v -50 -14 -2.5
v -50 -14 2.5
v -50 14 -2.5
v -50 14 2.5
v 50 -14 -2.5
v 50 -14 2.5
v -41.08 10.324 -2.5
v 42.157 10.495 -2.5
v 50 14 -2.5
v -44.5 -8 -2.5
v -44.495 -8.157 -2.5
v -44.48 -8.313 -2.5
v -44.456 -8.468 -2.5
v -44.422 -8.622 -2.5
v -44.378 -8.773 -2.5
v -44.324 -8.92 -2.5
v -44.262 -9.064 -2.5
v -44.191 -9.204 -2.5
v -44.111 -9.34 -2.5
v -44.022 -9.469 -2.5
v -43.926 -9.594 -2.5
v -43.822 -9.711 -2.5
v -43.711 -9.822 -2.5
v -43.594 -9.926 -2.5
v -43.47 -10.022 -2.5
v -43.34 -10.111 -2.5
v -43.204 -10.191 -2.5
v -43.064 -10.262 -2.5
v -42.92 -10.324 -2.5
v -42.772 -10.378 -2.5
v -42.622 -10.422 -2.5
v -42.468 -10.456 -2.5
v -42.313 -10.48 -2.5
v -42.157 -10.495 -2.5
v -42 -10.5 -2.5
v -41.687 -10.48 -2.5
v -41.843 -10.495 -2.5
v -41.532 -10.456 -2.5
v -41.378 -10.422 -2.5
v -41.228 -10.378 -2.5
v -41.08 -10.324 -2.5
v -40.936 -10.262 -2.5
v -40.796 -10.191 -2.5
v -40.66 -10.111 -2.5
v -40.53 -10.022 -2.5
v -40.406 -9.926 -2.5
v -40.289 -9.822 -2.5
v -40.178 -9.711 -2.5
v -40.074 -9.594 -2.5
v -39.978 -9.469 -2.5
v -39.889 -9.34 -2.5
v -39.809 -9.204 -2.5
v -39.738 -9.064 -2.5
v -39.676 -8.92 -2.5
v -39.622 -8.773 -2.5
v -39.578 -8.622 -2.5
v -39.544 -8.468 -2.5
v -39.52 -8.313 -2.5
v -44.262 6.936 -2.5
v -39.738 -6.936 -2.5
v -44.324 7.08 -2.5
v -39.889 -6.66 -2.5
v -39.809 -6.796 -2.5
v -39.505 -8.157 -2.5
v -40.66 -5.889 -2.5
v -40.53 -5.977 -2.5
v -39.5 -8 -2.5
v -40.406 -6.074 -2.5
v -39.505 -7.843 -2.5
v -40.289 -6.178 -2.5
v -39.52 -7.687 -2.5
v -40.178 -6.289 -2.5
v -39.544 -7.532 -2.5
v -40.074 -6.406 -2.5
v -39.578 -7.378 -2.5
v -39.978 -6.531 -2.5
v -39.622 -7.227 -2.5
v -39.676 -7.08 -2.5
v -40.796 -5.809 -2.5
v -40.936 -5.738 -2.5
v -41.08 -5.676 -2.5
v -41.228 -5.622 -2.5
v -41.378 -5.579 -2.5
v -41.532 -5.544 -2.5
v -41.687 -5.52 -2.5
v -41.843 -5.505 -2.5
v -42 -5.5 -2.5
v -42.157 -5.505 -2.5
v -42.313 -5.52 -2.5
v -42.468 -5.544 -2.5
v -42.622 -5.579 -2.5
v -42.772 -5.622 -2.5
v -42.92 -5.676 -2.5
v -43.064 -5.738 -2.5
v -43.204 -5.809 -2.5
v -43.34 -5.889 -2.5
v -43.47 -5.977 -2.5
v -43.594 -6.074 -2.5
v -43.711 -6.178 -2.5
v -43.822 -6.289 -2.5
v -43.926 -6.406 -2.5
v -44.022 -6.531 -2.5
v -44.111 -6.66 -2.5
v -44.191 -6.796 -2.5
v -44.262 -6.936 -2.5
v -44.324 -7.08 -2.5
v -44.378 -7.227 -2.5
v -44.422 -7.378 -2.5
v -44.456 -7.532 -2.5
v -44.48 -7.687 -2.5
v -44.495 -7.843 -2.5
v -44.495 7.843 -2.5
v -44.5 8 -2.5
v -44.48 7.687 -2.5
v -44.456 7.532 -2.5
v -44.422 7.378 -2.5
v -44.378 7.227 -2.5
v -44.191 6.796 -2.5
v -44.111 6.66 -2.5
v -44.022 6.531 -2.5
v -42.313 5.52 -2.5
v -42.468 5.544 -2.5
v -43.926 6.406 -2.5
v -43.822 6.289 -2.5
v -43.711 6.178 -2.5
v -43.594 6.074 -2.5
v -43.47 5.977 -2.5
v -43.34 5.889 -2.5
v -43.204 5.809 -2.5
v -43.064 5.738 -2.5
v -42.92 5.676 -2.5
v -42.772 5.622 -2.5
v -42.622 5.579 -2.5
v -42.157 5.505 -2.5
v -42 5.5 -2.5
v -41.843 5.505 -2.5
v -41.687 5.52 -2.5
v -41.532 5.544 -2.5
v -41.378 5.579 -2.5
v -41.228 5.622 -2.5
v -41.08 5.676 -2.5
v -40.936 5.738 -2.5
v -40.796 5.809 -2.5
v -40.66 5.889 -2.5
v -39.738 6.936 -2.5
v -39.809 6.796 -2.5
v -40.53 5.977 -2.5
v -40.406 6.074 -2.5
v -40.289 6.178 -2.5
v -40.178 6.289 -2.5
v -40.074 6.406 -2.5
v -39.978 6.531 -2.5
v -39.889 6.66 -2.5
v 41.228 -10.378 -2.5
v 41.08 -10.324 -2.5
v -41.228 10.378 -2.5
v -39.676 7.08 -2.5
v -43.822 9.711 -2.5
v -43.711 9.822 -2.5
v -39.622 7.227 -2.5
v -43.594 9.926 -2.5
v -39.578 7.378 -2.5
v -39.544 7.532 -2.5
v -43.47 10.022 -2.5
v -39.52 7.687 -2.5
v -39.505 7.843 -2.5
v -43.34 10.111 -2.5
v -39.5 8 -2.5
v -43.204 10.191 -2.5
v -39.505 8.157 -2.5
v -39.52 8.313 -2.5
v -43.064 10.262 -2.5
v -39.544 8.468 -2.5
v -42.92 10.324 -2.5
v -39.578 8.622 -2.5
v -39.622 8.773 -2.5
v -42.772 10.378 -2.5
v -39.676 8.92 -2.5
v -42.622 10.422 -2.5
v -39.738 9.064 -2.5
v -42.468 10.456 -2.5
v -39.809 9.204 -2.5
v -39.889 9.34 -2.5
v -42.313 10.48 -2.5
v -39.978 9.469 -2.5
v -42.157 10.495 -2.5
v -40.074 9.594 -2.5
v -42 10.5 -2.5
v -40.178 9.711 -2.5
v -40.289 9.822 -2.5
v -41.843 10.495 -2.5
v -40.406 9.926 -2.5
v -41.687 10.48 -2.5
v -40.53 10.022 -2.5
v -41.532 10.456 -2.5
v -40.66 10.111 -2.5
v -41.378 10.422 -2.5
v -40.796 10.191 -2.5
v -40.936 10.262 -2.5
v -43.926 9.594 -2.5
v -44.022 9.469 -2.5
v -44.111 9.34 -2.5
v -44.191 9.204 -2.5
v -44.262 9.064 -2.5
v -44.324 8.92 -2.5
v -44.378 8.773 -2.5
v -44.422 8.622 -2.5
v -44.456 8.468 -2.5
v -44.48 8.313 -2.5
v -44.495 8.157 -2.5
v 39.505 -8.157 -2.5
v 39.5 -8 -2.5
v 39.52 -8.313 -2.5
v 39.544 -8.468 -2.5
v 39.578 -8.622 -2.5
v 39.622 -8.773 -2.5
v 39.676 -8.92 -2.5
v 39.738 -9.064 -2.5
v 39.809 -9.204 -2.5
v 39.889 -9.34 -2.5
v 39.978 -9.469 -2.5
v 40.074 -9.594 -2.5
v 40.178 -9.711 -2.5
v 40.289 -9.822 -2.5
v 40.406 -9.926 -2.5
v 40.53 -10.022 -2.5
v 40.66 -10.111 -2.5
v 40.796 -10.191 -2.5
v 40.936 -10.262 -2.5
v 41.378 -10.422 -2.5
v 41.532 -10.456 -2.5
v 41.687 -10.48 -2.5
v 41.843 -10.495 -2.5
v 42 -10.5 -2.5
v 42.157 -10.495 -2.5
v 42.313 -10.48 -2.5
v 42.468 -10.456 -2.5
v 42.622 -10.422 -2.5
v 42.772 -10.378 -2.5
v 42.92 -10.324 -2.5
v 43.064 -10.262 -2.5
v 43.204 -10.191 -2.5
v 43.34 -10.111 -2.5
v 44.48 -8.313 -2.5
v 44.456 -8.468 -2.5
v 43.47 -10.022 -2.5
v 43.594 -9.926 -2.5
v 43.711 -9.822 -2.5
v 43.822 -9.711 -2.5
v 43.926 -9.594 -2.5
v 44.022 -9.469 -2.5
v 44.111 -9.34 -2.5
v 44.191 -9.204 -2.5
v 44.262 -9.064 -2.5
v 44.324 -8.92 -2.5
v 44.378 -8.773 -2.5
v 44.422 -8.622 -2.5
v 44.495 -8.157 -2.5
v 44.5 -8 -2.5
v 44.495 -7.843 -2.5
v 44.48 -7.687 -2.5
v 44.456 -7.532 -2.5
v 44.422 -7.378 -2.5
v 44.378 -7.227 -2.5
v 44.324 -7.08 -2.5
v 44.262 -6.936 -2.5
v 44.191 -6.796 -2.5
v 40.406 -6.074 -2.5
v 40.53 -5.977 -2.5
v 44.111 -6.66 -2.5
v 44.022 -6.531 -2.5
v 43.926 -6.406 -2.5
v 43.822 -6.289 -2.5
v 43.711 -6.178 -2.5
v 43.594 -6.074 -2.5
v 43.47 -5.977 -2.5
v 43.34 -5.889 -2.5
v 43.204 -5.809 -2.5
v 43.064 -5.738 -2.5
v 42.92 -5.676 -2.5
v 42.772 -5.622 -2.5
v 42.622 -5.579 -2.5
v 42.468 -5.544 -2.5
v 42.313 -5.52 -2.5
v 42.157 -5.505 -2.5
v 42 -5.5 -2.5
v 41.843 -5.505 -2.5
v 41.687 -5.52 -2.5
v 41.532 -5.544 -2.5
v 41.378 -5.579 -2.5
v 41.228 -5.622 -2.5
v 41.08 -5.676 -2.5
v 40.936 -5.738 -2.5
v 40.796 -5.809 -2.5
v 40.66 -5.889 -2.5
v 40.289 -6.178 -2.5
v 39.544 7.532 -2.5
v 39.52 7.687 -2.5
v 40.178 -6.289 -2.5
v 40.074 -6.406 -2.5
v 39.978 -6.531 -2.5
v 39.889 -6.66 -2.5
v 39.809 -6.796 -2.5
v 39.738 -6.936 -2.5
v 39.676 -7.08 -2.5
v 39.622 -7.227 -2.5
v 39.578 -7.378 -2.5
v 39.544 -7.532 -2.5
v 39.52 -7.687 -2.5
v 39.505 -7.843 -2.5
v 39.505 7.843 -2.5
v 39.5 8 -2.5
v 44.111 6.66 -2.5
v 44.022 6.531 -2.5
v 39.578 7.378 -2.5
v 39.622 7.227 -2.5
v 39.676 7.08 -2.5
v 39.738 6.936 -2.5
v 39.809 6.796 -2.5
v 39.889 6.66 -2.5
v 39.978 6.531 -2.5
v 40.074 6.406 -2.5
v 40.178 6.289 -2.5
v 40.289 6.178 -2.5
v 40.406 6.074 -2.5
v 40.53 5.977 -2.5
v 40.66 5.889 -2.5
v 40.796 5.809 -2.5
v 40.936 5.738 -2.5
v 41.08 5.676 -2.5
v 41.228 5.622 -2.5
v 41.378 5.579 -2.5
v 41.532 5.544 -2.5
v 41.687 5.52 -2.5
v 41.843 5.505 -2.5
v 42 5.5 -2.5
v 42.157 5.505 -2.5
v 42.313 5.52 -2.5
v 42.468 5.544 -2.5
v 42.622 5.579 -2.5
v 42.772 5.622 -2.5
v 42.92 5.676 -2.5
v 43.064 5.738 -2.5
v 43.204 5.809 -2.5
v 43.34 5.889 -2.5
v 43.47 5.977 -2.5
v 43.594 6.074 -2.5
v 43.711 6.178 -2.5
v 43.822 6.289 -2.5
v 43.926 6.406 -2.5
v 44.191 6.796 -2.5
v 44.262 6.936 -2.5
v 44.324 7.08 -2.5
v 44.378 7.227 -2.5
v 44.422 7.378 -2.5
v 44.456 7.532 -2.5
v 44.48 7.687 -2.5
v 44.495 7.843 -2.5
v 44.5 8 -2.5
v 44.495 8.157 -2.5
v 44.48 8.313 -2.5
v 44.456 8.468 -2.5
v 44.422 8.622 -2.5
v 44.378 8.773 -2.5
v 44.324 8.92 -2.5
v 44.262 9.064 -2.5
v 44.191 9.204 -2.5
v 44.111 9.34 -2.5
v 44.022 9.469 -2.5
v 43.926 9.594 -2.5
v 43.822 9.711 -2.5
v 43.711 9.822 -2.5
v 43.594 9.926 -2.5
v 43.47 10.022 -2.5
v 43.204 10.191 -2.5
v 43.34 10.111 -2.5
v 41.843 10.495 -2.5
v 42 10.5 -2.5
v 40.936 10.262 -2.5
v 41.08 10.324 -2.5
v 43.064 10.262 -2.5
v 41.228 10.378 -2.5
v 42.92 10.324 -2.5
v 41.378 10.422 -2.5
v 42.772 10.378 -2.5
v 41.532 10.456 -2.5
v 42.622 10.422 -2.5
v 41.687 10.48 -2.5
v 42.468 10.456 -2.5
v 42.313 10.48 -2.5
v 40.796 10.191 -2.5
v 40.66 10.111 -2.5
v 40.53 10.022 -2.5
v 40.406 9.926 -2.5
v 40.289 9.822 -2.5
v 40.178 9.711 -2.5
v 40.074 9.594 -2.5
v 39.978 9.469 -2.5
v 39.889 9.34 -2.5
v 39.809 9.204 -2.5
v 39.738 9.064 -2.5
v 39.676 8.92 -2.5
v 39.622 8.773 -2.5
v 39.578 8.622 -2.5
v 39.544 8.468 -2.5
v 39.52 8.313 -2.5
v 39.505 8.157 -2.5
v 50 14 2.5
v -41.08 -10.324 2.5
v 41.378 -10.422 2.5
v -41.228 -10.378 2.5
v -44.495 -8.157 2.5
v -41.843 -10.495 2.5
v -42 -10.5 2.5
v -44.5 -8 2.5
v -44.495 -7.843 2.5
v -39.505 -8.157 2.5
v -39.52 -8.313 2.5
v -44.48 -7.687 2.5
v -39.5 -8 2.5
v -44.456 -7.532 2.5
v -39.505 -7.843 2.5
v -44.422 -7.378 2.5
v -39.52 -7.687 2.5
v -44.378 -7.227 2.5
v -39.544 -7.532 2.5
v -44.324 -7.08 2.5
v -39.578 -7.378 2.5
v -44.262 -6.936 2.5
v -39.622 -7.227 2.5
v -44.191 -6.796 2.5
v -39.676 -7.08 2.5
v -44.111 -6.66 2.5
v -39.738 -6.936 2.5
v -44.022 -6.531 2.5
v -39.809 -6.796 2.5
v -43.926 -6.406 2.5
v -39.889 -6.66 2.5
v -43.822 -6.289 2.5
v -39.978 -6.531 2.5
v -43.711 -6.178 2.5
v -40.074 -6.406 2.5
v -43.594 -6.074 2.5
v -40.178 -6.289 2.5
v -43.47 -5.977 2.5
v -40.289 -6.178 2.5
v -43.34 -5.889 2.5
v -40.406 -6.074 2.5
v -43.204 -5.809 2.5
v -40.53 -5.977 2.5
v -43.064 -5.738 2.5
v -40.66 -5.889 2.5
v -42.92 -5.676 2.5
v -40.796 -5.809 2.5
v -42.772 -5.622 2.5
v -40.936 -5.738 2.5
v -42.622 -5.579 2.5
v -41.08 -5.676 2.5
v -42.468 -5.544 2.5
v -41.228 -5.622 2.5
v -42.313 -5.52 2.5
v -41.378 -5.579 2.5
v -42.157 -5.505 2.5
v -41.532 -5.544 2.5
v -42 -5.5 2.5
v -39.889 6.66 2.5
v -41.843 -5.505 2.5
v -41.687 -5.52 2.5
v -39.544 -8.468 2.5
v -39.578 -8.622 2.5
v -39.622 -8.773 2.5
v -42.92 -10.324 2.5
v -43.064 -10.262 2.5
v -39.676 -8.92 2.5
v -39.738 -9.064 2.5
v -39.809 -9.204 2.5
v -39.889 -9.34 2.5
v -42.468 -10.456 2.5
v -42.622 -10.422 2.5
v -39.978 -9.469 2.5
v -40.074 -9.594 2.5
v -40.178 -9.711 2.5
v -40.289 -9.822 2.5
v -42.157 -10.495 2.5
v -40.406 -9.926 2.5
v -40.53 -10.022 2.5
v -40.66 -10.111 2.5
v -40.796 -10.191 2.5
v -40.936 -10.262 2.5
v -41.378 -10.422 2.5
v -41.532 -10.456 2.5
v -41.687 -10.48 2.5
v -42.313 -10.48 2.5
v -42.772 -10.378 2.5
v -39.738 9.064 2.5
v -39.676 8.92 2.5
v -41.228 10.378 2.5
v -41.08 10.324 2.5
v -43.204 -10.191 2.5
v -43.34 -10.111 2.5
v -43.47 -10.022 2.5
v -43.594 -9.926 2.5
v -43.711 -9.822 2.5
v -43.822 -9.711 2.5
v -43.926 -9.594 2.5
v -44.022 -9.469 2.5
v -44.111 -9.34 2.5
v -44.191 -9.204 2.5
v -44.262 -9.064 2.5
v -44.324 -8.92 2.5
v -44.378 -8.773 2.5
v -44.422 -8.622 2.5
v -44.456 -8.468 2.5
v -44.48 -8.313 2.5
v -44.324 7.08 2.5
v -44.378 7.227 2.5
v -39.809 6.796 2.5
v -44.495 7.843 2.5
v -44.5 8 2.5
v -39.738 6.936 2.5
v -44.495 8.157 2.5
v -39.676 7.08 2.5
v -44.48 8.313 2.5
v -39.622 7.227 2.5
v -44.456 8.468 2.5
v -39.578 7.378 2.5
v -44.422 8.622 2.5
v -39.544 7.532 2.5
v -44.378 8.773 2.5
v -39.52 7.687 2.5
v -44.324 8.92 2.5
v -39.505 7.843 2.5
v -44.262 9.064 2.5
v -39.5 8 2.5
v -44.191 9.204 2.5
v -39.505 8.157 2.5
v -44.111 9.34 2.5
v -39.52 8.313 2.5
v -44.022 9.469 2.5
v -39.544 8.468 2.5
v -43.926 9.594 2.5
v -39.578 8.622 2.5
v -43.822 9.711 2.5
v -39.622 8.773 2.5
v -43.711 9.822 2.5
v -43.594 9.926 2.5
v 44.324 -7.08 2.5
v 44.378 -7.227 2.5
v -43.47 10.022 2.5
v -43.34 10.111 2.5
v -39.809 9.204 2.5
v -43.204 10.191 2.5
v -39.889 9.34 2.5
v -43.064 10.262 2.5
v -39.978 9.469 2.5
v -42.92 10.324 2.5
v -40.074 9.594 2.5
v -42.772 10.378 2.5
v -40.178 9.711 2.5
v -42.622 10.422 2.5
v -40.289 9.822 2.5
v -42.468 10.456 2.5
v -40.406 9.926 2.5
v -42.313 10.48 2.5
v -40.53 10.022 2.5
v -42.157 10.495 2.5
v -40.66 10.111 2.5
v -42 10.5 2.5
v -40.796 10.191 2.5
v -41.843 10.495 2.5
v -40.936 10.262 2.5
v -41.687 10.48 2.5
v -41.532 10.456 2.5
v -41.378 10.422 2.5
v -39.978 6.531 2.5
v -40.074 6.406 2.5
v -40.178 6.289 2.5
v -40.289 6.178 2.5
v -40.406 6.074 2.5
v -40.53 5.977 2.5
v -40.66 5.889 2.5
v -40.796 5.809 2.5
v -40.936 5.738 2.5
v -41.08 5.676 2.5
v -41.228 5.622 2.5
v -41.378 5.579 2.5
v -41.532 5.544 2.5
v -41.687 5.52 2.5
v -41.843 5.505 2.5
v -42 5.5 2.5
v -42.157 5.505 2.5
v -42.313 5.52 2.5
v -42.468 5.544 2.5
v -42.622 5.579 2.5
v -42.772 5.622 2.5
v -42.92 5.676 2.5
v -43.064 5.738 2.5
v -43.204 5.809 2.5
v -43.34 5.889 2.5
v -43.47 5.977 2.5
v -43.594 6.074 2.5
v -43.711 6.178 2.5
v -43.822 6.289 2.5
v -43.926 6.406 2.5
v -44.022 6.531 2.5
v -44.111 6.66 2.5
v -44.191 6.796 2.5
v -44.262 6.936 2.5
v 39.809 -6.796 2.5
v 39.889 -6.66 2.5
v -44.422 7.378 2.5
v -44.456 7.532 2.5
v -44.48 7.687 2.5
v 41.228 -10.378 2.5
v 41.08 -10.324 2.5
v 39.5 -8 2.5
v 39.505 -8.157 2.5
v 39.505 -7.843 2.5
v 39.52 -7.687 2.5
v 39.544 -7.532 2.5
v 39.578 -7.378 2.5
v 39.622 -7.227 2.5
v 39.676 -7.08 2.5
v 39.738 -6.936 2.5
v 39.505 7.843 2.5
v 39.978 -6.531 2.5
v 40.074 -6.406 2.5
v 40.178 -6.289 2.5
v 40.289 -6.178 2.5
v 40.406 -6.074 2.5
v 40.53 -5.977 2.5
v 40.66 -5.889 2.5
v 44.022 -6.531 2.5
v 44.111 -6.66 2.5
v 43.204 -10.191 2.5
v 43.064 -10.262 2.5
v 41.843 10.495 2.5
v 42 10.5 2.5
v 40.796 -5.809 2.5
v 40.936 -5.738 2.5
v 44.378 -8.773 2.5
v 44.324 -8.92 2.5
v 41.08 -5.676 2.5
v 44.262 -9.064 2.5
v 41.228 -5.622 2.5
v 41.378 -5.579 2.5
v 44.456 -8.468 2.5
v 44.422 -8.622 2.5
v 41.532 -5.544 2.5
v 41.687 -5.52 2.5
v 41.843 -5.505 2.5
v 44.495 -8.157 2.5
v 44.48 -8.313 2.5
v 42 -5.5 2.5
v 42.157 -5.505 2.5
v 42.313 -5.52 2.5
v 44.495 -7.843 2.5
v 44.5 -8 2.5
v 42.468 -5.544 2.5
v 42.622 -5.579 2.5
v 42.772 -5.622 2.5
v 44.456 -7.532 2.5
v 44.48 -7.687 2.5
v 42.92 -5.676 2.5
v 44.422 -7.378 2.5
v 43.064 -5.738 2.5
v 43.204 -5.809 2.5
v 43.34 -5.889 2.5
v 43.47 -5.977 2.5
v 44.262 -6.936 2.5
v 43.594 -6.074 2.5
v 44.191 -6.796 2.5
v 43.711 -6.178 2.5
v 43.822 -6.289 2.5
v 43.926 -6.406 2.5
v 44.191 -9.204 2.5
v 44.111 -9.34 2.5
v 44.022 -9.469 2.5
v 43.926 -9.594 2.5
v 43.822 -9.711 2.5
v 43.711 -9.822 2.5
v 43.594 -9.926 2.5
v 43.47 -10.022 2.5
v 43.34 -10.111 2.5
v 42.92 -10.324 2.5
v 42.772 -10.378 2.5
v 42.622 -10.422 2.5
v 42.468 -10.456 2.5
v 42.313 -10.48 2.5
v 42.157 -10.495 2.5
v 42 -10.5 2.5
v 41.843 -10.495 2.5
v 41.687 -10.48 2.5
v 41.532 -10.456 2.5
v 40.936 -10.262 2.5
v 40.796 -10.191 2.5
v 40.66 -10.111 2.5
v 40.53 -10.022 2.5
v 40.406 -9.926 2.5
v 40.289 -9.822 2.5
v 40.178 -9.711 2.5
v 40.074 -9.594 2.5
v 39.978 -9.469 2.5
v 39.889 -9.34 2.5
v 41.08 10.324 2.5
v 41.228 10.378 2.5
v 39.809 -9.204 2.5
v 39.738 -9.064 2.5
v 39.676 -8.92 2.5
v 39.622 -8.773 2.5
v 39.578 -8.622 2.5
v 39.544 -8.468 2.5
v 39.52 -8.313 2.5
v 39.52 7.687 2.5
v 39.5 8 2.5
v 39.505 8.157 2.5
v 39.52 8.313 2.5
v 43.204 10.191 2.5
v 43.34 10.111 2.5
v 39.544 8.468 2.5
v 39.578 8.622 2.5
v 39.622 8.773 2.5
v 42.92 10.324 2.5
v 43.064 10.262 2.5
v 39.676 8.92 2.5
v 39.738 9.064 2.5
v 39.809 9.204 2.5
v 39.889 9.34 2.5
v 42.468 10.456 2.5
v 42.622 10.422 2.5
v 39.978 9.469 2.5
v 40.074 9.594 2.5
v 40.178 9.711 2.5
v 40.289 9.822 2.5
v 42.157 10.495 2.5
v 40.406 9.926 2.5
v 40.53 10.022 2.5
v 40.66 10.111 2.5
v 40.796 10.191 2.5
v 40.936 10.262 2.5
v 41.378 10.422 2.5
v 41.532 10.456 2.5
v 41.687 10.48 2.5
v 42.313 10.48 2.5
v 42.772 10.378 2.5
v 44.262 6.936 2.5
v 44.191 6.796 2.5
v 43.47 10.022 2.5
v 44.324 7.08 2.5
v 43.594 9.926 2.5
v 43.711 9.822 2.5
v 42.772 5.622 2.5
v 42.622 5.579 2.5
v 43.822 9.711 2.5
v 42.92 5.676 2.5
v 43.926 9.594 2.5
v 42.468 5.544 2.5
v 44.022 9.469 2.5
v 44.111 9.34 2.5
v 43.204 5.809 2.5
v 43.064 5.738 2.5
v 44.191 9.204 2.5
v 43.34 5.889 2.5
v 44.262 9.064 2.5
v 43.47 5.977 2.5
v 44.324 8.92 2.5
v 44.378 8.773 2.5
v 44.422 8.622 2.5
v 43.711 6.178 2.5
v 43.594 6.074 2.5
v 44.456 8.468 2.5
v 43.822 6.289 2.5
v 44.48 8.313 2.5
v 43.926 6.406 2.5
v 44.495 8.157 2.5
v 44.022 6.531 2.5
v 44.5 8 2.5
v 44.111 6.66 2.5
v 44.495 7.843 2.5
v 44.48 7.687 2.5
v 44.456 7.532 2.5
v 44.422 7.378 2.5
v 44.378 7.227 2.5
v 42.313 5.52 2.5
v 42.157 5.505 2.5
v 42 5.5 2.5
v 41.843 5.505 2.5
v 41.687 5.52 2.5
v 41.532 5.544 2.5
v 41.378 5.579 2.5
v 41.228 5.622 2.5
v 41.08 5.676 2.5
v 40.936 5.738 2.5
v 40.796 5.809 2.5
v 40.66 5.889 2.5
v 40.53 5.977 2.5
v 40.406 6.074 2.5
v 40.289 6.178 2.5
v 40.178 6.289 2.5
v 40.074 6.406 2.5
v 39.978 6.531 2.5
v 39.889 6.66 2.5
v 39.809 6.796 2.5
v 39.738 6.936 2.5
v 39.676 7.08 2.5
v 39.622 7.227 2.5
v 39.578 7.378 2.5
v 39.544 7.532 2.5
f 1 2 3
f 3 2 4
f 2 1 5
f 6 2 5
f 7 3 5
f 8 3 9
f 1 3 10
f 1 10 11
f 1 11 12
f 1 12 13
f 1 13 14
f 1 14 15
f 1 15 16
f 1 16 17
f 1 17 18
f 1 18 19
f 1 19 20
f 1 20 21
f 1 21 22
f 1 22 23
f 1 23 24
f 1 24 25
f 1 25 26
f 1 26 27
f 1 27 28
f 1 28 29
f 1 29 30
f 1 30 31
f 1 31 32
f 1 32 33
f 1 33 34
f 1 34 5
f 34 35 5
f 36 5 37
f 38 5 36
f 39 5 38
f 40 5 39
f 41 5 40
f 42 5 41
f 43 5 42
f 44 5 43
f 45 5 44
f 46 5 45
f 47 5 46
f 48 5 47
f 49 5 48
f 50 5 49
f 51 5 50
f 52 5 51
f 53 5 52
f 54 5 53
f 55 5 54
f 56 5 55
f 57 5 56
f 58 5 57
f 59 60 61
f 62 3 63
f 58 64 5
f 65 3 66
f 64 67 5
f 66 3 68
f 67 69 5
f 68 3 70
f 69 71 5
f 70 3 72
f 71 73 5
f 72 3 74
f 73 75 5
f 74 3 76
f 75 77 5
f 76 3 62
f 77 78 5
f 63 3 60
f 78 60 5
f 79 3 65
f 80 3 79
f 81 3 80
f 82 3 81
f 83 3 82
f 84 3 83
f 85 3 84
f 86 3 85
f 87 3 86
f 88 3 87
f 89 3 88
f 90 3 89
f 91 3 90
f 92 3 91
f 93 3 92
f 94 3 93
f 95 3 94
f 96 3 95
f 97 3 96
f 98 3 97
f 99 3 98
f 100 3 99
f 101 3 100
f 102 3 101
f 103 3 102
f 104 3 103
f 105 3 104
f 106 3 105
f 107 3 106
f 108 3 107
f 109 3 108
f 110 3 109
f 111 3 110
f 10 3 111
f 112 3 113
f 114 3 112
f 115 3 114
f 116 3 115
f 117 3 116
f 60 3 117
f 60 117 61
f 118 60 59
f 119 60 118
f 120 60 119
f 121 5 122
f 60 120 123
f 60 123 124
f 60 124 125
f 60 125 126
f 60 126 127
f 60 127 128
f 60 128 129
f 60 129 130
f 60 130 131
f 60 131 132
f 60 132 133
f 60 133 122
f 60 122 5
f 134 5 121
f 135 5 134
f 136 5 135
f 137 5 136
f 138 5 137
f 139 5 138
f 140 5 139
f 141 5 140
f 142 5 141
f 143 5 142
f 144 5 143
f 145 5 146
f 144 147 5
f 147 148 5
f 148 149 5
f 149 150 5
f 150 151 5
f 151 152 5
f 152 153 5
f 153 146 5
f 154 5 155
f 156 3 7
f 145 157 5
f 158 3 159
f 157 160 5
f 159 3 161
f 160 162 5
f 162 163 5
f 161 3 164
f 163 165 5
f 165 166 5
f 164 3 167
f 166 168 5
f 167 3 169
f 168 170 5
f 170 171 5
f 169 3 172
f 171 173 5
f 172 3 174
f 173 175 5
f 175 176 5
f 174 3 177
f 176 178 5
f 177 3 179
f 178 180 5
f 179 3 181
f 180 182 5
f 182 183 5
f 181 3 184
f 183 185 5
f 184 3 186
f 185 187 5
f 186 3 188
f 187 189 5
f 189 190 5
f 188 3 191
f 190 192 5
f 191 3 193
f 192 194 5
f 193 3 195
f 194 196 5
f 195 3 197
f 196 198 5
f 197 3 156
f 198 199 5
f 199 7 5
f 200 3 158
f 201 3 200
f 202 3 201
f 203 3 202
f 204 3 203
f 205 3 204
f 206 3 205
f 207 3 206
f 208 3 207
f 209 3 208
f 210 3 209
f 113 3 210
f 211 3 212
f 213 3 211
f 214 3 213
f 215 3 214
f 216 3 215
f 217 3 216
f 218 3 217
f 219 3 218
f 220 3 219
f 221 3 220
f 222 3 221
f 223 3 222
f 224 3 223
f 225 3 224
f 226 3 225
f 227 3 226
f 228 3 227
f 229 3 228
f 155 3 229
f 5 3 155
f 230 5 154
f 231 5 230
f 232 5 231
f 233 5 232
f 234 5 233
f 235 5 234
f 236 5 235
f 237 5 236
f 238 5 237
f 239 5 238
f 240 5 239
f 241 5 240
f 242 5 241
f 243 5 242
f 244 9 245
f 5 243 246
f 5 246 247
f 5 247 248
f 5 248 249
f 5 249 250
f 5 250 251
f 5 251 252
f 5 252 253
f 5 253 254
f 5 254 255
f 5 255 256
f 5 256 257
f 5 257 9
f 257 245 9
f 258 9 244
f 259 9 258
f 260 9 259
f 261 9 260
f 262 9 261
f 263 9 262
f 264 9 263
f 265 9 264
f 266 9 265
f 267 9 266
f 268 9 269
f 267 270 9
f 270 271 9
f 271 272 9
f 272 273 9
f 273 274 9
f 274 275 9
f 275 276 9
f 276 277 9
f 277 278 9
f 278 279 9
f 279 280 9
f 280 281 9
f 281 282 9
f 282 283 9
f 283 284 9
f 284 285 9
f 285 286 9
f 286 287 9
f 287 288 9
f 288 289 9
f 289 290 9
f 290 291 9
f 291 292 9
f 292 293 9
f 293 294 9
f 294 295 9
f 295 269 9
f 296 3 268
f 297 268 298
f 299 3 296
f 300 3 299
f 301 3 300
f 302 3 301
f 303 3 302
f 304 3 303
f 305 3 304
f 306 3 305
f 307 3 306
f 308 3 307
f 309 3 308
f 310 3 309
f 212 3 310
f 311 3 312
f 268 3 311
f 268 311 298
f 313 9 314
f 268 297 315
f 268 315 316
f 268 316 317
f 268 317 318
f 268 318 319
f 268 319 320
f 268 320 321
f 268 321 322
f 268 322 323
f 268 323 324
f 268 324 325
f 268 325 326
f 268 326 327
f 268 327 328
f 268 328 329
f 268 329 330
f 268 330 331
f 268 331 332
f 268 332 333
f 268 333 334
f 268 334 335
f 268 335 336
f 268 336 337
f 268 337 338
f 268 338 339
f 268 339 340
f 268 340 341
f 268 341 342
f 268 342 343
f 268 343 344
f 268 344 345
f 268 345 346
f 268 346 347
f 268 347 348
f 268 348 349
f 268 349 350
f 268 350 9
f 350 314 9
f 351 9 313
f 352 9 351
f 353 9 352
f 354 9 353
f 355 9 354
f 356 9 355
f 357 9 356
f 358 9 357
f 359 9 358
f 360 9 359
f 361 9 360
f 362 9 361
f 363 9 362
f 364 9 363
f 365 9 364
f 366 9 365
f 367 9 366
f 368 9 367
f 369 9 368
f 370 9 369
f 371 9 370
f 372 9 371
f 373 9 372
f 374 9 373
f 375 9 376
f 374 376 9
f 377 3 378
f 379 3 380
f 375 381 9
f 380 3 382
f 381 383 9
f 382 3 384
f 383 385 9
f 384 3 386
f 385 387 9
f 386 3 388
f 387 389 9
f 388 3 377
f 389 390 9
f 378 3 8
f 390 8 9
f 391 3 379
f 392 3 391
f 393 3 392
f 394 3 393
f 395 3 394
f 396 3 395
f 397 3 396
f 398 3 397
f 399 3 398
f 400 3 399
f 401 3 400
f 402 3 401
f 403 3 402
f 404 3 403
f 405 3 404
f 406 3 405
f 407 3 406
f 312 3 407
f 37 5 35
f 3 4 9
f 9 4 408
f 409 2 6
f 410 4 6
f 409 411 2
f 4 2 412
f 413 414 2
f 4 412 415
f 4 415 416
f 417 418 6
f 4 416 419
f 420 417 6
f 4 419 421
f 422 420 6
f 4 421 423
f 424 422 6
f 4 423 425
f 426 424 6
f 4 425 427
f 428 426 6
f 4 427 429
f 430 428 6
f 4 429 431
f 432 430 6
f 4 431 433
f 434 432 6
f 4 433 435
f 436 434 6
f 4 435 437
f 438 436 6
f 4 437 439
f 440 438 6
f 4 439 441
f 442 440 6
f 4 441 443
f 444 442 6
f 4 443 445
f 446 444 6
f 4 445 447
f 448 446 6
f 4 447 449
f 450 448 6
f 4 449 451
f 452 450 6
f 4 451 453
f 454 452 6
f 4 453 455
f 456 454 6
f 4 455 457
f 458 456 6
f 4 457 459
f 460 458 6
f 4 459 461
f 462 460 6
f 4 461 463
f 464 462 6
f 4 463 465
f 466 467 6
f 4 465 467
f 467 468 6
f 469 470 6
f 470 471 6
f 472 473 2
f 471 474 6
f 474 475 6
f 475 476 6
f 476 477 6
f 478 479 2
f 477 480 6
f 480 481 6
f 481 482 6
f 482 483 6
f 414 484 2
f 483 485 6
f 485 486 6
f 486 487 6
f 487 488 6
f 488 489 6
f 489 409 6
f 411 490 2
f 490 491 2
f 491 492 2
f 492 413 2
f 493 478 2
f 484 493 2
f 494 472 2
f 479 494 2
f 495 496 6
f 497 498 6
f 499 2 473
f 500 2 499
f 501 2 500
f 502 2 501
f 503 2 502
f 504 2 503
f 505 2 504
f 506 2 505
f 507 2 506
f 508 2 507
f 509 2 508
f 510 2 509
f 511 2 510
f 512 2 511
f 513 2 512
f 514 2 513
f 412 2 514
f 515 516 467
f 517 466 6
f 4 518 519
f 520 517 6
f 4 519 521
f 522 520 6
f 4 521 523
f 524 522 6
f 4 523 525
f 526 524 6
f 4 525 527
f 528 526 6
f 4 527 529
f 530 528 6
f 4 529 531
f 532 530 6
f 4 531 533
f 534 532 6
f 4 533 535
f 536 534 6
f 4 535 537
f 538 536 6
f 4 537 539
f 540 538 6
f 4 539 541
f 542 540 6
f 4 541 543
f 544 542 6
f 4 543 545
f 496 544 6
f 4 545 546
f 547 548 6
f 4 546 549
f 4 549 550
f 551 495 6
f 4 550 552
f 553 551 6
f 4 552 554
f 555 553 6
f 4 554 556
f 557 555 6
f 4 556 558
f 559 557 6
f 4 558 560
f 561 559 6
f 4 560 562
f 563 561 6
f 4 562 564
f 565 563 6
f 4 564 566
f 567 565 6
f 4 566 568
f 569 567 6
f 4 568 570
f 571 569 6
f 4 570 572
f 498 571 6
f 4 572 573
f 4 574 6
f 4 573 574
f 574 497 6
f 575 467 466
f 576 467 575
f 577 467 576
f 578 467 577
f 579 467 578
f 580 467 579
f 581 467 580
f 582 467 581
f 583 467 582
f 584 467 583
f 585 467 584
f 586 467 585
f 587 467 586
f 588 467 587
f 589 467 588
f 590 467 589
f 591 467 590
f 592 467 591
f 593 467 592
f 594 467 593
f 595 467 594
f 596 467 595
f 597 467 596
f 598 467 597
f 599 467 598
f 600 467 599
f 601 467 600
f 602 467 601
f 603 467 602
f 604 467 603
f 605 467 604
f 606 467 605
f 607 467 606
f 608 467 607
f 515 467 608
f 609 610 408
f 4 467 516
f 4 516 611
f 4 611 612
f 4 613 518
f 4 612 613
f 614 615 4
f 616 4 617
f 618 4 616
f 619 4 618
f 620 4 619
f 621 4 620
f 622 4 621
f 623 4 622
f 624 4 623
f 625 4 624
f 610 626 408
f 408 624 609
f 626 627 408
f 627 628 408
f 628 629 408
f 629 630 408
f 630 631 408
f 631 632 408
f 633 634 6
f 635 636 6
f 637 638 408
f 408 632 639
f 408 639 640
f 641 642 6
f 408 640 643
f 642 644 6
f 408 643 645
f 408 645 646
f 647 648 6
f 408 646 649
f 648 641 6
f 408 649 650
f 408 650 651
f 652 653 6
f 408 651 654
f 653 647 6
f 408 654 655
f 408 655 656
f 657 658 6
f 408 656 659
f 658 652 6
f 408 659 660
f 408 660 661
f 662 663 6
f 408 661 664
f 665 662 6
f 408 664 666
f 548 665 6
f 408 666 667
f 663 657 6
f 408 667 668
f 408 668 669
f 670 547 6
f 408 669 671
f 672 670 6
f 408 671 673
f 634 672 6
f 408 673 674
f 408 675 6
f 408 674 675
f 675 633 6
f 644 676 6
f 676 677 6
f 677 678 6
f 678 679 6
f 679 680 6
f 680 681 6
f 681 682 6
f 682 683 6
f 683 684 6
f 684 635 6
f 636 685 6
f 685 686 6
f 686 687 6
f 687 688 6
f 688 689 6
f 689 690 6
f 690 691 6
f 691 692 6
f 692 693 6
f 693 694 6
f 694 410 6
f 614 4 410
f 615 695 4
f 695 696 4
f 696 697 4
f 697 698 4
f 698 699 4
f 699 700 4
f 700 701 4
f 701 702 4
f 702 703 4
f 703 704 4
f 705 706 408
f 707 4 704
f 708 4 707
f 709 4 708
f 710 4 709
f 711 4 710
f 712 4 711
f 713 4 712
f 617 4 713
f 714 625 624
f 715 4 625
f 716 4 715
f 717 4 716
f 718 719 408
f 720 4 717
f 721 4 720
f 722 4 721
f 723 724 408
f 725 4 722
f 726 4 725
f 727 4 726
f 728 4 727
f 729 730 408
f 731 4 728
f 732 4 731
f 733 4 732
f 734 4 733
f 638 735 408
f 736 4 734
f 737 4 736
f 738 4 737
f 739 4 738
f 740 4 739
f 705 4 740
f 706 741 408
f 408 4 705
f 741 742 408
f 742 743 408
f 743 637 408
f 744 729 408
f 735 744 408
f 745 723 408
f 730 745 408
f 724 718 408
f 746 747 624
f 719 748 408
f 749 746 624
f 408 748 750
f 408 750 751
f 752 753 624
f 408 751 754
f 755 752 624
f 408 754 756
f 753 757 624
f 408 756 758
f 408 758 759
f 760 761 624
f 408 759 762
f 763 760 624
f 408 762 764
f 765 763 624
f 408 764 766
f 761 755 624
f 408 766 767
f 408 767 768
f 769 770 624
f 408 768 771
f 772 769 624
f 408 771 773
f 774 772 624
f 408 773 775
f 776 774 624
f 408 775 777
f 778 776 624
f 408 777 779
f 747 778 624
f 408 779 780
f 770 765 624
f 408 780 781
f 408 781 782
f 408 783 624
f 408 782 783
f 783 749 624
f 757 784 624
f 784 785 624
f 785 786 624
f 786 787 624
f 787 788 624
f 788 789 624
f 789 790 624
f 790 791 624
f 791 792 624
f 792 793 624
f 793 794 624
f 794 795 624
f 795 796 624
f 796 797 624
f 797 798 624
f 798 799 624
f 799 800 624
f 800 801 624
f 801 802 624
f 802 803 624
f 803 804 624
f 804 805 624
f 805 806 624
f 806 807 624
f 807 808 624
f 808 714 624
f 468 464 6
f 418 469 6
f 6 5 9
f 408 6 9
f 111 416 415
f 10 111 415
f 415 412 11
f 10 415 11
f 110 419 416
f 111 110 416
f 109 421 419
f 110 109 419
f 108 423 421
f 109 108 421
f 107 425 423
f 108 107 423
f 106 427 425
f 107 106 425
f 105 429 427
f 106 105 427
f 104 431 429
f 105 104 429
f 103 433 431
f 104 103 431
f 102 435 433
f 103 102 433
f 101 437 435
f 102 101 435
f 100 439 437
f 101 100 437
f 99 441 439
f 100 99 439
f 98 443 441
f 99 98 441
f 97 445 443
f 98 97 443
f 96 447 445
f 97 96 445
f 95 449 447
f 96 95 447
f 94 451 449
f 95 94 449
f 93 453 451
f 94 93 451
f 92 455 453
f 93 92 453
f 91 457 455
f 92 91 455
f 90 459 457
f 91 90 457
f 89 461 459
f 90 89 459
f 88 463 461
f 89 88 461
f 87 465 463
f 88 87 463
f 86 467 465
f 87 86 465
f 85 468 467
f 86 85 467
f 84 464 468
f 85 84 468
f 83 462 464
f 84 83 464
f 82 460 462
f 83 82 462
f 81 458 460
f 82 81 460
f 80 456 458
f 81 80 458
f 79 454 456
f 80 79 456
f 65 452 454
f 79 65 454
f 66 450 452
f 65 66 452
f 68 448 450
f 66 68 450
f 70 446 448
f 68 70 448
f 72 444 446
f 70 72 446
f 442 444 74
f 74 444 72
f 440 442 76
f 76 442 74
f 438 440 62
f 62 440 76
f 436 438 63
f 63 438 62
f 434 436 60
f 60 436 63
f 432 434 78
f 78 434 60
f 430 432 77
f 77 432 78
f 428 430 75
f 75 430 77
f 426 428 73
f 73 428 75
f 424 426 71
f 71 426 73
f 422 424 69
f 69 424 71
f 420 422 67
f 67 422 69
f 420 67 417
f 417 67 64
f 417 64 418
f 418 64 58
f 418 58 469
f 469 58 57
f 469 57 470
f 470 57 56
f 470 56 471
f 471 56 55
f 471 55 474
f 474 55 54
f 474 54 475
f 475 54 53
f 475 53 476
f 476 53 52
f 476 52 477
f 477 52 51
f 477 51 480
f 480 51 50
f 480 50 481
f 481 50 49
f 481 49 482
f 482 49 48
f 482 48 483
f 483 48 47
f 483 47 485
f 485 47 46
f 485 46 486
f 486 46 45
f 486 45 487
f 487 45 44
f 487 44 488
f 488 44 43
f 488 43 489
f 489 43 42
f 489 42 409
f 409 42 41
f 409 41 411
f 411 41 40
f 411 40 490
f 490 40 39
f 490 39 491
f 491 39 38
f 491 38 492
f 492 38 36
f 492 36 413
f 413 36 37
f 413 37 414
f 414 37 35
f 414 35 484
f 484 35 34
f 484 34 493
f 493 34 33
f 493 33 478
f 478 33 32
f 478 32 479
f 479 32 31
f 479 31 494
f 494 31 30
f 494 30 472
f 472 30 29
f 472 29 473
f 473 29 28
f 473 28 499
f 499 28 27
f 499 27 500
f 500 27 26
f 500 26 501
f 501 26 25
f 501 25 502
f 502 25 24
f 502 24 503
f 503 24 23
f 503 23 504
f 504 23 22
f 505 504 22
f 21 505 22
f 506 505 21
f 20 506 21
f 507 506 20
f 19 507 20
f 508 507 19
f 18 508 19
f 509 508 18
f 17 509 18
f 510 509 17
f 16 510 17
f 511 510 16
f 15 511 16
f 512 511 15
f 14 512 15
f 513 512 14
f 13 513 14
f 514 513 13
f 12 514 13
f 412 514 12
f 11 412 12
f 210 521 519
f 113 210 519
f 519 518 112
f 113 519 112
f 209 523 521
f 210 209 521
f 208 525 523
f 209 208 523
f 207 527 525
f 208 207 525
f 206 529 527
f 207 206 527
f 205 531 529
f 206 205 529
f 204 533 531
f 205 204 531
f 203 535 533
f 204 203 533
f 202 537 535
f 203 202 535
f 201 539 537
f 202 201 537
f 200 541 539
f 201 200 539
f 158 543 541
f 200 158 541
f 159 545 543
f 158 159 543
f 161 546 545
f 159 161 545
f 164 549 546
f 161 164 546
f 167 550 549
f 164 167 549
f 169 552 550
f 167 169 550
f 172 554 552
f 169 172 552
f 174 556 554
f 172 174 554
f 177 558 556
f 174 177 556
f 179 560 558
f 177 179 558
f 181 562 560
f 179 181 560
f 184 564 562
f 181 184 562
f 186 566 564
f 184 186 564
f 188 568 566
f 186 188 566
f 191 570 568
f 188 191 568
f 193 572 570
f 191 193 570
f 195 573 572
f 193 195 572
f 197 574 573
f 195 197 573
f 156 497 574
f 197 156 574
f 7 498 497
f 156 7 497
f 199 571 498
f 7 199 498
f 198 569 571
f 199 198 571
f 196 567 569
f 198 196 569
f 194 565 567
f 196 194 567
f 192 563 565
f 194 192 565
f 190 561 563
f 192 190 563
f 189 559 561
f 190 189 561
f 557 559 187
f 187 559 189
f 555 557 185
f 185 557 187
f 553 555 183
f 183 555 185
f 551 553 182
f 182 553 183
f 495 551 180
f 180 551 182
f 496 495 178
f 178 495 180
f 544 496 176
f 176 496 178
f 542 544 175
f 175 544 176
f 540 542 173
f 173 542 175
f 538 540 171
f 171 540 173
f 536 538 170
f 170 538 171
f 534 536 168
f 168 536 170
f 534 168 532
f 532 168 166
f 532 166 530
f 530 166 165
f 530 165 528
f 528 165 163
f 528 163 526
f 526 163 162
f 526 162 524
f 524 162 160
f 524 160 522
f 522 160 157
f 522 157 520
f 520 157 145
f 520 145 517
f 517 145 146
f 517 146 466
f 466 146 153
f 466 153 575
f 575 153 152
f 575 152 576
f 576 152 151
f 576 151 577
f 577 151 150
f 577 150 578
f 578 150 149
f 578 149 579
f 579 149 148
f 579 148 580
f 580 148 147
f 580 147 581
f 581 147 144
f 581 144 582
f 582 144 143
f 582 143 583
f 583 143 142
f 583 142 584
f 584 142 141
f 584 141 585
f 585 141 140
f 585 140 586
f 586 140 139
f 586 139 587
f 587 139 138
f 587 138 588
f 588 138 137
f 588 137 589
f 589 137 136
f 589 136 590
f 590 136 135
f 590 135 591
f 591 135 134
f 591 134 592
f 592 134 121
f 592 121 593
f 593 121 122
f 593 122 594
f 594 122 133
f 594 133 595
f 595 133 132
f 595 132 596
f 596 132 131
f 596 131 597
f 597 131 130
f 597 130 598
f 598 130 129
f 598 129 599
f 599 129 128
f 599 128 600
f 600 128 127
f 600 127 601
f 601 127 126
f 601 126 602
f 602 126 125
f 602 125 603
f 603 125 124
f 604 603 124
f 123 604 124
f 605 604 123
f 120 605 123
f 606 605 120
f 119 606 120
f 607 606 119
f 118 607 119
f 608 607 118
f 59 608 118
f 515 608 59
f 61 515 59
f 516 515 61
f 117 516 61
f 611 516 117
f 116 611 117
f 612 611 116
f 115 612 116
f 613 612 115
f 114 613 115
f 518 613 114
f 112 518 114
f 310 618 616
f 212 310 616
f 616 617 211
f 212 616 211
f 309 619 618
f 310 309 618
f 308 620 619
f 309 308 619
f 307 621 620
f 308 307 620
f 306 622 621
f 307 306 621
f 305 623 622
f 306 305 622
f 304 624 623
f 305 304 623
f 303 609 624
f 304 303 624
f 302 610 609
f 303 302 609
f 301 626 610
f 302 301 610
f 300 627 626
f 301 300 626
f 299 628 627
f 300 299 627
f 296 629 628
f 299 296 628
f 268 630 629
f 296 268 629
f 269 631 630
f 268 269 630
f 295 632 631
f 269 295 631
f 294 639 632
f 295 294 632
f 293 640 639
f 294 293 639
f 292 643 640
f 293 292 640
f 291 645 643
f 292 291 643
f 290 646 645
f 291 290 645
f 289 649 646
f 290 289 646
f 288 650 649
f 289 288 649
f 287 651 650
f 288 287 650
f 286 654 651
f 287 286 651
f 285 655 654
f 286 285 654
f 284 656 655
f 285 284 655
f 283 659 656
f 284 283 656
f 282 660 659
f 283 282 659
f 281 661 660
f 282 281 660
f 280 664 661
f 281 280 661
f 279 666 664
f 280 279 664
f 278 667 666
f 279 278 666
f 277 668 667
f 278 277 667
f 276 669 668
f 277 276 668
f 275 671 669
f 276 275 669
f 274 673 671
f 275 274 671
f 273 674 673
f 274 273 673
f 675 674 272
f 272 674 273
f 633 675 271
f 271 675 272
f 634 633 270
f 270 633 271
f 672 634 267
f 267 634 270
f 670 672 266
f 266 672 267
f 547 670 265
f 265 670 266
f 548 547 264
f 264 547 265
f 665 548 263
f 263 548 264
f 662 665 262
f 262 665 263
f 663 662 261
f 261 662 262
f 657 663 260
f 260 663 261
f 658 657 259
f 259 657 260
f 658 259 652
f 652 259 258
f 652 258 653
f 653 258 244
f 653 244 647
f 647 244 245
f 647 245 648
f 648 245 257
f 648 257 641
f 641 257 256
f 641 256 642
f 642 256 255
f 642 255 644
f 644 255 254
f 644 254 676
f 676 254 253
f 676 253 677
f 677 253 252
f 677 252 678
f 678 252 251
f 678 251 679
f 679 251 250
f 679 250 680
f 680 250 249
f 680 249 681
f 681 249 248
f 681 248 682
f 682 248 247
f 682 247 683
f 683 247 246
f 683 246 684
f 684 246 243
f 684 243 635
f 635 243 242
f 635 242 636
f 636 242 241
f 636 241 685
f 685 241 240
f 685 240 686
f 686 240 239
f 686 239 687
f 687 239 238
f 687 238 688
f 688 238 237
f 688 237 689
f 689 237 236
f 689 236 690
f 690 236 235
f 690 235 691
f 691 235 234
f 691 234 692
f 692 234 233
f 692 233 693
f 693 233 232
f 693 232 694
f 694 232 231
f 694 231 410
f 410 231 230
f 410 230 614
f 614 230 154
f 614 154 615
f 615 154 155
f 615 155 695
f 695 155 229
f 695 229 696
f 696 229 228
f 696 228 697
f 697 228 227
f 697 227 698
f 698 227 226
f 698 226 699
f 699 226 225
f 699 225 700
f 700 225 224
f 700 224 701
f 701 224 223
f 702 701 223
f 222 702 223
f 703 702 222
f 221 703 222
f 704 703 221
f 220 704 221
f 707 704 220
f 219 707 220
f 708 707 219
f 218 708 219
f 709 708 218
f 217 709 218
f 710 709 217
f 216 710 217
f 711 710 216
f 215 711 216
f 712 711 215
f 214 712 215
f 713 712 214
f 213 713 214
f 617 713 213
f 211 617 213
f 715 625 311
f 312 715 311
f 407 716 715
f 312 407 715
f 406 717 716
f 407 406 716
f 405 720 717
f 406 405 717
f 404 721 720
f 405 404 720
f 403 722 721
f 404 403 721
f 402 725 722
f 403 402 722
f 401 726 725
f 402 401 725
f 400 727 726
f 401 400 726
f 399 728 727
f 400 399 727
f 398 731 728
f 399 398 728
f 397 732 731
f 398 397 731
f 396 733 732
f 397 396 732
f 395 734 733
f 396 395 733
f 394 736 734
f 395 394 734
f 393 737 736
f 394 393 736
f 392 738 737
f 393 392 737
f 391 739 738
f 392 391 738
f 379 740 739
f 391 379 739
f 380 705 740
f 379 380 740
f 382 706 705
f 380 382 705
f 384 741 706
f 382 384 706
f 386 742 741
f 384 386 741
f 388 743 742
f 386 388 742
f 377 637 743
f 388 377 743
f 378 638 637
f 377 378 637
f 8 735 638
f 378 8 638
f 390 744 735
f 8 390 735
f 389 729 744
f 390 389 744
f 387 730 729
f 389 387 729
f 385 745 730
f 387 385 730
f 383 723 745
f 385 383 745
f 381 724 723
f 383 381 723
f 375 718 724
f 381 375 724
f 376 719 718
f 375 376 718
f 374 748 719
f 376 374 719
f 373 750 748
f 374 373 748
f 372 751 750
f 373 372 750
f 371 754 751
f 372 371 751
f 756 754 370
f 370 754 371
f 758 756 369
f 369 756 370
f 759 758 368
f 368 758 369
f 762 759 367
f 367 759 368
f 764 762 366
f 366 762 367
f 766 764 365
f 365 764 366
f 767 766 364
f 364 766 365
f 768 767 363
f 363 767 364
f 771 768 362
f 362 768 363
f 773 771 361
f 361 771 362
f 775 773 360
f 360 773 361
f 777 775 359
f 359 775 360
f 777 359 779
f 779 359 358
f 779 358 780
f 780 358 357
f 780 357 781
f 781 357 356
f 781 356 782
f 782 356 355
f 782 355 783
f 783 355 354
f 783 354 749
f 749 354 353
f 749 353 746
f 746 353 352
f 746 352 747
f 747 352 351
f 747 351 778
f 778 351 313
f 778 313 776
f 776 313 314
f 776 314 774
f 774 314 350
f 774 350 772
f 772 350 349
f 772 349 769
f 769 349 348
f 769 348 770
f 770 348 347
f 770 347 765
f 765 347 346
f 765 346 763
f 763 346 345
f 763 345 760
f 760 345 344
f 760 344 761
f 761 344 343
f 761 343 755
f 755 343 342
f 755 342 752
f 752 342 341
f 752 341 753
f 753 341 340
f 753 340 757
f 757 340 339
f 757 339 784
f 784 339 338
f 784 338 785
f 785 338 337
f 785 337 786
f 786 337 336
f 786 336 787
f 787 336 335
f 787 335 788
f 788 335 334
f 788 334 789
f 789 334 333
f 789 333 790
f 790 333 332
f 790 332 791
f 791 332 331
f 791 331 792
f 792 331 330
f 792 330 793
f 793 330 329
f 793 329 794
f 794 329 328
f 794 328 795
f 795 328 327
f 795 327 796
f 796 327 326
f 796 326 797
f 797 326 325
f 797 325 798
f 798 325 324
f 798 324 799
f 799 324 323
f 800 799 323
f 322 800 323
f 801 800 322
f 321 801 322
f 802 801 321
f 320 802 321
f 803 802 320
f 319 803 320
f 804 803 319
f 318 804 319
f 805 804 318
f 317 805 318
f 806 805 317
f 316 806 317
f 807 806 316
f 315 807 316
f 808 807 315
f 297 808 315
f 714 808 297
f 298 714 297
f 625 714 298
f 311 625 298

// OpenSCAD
difference(){
	cube([100,28,5], center=true);
	translate([42, 8, 0]) cylinder(r=2.5,h=10, center=true, $fn=100);
	translate([42, -8, 0]) cylinder(r=2.5,h=10, center=true, $fn=100);
	translate([-42, 8, 0]) cylinder(r=2.5,h=10, center=true, $fn=100);
	translate([-42, -8, 0]) cylinder(r=2.5,h=10, center=true, $fn=100);
}
